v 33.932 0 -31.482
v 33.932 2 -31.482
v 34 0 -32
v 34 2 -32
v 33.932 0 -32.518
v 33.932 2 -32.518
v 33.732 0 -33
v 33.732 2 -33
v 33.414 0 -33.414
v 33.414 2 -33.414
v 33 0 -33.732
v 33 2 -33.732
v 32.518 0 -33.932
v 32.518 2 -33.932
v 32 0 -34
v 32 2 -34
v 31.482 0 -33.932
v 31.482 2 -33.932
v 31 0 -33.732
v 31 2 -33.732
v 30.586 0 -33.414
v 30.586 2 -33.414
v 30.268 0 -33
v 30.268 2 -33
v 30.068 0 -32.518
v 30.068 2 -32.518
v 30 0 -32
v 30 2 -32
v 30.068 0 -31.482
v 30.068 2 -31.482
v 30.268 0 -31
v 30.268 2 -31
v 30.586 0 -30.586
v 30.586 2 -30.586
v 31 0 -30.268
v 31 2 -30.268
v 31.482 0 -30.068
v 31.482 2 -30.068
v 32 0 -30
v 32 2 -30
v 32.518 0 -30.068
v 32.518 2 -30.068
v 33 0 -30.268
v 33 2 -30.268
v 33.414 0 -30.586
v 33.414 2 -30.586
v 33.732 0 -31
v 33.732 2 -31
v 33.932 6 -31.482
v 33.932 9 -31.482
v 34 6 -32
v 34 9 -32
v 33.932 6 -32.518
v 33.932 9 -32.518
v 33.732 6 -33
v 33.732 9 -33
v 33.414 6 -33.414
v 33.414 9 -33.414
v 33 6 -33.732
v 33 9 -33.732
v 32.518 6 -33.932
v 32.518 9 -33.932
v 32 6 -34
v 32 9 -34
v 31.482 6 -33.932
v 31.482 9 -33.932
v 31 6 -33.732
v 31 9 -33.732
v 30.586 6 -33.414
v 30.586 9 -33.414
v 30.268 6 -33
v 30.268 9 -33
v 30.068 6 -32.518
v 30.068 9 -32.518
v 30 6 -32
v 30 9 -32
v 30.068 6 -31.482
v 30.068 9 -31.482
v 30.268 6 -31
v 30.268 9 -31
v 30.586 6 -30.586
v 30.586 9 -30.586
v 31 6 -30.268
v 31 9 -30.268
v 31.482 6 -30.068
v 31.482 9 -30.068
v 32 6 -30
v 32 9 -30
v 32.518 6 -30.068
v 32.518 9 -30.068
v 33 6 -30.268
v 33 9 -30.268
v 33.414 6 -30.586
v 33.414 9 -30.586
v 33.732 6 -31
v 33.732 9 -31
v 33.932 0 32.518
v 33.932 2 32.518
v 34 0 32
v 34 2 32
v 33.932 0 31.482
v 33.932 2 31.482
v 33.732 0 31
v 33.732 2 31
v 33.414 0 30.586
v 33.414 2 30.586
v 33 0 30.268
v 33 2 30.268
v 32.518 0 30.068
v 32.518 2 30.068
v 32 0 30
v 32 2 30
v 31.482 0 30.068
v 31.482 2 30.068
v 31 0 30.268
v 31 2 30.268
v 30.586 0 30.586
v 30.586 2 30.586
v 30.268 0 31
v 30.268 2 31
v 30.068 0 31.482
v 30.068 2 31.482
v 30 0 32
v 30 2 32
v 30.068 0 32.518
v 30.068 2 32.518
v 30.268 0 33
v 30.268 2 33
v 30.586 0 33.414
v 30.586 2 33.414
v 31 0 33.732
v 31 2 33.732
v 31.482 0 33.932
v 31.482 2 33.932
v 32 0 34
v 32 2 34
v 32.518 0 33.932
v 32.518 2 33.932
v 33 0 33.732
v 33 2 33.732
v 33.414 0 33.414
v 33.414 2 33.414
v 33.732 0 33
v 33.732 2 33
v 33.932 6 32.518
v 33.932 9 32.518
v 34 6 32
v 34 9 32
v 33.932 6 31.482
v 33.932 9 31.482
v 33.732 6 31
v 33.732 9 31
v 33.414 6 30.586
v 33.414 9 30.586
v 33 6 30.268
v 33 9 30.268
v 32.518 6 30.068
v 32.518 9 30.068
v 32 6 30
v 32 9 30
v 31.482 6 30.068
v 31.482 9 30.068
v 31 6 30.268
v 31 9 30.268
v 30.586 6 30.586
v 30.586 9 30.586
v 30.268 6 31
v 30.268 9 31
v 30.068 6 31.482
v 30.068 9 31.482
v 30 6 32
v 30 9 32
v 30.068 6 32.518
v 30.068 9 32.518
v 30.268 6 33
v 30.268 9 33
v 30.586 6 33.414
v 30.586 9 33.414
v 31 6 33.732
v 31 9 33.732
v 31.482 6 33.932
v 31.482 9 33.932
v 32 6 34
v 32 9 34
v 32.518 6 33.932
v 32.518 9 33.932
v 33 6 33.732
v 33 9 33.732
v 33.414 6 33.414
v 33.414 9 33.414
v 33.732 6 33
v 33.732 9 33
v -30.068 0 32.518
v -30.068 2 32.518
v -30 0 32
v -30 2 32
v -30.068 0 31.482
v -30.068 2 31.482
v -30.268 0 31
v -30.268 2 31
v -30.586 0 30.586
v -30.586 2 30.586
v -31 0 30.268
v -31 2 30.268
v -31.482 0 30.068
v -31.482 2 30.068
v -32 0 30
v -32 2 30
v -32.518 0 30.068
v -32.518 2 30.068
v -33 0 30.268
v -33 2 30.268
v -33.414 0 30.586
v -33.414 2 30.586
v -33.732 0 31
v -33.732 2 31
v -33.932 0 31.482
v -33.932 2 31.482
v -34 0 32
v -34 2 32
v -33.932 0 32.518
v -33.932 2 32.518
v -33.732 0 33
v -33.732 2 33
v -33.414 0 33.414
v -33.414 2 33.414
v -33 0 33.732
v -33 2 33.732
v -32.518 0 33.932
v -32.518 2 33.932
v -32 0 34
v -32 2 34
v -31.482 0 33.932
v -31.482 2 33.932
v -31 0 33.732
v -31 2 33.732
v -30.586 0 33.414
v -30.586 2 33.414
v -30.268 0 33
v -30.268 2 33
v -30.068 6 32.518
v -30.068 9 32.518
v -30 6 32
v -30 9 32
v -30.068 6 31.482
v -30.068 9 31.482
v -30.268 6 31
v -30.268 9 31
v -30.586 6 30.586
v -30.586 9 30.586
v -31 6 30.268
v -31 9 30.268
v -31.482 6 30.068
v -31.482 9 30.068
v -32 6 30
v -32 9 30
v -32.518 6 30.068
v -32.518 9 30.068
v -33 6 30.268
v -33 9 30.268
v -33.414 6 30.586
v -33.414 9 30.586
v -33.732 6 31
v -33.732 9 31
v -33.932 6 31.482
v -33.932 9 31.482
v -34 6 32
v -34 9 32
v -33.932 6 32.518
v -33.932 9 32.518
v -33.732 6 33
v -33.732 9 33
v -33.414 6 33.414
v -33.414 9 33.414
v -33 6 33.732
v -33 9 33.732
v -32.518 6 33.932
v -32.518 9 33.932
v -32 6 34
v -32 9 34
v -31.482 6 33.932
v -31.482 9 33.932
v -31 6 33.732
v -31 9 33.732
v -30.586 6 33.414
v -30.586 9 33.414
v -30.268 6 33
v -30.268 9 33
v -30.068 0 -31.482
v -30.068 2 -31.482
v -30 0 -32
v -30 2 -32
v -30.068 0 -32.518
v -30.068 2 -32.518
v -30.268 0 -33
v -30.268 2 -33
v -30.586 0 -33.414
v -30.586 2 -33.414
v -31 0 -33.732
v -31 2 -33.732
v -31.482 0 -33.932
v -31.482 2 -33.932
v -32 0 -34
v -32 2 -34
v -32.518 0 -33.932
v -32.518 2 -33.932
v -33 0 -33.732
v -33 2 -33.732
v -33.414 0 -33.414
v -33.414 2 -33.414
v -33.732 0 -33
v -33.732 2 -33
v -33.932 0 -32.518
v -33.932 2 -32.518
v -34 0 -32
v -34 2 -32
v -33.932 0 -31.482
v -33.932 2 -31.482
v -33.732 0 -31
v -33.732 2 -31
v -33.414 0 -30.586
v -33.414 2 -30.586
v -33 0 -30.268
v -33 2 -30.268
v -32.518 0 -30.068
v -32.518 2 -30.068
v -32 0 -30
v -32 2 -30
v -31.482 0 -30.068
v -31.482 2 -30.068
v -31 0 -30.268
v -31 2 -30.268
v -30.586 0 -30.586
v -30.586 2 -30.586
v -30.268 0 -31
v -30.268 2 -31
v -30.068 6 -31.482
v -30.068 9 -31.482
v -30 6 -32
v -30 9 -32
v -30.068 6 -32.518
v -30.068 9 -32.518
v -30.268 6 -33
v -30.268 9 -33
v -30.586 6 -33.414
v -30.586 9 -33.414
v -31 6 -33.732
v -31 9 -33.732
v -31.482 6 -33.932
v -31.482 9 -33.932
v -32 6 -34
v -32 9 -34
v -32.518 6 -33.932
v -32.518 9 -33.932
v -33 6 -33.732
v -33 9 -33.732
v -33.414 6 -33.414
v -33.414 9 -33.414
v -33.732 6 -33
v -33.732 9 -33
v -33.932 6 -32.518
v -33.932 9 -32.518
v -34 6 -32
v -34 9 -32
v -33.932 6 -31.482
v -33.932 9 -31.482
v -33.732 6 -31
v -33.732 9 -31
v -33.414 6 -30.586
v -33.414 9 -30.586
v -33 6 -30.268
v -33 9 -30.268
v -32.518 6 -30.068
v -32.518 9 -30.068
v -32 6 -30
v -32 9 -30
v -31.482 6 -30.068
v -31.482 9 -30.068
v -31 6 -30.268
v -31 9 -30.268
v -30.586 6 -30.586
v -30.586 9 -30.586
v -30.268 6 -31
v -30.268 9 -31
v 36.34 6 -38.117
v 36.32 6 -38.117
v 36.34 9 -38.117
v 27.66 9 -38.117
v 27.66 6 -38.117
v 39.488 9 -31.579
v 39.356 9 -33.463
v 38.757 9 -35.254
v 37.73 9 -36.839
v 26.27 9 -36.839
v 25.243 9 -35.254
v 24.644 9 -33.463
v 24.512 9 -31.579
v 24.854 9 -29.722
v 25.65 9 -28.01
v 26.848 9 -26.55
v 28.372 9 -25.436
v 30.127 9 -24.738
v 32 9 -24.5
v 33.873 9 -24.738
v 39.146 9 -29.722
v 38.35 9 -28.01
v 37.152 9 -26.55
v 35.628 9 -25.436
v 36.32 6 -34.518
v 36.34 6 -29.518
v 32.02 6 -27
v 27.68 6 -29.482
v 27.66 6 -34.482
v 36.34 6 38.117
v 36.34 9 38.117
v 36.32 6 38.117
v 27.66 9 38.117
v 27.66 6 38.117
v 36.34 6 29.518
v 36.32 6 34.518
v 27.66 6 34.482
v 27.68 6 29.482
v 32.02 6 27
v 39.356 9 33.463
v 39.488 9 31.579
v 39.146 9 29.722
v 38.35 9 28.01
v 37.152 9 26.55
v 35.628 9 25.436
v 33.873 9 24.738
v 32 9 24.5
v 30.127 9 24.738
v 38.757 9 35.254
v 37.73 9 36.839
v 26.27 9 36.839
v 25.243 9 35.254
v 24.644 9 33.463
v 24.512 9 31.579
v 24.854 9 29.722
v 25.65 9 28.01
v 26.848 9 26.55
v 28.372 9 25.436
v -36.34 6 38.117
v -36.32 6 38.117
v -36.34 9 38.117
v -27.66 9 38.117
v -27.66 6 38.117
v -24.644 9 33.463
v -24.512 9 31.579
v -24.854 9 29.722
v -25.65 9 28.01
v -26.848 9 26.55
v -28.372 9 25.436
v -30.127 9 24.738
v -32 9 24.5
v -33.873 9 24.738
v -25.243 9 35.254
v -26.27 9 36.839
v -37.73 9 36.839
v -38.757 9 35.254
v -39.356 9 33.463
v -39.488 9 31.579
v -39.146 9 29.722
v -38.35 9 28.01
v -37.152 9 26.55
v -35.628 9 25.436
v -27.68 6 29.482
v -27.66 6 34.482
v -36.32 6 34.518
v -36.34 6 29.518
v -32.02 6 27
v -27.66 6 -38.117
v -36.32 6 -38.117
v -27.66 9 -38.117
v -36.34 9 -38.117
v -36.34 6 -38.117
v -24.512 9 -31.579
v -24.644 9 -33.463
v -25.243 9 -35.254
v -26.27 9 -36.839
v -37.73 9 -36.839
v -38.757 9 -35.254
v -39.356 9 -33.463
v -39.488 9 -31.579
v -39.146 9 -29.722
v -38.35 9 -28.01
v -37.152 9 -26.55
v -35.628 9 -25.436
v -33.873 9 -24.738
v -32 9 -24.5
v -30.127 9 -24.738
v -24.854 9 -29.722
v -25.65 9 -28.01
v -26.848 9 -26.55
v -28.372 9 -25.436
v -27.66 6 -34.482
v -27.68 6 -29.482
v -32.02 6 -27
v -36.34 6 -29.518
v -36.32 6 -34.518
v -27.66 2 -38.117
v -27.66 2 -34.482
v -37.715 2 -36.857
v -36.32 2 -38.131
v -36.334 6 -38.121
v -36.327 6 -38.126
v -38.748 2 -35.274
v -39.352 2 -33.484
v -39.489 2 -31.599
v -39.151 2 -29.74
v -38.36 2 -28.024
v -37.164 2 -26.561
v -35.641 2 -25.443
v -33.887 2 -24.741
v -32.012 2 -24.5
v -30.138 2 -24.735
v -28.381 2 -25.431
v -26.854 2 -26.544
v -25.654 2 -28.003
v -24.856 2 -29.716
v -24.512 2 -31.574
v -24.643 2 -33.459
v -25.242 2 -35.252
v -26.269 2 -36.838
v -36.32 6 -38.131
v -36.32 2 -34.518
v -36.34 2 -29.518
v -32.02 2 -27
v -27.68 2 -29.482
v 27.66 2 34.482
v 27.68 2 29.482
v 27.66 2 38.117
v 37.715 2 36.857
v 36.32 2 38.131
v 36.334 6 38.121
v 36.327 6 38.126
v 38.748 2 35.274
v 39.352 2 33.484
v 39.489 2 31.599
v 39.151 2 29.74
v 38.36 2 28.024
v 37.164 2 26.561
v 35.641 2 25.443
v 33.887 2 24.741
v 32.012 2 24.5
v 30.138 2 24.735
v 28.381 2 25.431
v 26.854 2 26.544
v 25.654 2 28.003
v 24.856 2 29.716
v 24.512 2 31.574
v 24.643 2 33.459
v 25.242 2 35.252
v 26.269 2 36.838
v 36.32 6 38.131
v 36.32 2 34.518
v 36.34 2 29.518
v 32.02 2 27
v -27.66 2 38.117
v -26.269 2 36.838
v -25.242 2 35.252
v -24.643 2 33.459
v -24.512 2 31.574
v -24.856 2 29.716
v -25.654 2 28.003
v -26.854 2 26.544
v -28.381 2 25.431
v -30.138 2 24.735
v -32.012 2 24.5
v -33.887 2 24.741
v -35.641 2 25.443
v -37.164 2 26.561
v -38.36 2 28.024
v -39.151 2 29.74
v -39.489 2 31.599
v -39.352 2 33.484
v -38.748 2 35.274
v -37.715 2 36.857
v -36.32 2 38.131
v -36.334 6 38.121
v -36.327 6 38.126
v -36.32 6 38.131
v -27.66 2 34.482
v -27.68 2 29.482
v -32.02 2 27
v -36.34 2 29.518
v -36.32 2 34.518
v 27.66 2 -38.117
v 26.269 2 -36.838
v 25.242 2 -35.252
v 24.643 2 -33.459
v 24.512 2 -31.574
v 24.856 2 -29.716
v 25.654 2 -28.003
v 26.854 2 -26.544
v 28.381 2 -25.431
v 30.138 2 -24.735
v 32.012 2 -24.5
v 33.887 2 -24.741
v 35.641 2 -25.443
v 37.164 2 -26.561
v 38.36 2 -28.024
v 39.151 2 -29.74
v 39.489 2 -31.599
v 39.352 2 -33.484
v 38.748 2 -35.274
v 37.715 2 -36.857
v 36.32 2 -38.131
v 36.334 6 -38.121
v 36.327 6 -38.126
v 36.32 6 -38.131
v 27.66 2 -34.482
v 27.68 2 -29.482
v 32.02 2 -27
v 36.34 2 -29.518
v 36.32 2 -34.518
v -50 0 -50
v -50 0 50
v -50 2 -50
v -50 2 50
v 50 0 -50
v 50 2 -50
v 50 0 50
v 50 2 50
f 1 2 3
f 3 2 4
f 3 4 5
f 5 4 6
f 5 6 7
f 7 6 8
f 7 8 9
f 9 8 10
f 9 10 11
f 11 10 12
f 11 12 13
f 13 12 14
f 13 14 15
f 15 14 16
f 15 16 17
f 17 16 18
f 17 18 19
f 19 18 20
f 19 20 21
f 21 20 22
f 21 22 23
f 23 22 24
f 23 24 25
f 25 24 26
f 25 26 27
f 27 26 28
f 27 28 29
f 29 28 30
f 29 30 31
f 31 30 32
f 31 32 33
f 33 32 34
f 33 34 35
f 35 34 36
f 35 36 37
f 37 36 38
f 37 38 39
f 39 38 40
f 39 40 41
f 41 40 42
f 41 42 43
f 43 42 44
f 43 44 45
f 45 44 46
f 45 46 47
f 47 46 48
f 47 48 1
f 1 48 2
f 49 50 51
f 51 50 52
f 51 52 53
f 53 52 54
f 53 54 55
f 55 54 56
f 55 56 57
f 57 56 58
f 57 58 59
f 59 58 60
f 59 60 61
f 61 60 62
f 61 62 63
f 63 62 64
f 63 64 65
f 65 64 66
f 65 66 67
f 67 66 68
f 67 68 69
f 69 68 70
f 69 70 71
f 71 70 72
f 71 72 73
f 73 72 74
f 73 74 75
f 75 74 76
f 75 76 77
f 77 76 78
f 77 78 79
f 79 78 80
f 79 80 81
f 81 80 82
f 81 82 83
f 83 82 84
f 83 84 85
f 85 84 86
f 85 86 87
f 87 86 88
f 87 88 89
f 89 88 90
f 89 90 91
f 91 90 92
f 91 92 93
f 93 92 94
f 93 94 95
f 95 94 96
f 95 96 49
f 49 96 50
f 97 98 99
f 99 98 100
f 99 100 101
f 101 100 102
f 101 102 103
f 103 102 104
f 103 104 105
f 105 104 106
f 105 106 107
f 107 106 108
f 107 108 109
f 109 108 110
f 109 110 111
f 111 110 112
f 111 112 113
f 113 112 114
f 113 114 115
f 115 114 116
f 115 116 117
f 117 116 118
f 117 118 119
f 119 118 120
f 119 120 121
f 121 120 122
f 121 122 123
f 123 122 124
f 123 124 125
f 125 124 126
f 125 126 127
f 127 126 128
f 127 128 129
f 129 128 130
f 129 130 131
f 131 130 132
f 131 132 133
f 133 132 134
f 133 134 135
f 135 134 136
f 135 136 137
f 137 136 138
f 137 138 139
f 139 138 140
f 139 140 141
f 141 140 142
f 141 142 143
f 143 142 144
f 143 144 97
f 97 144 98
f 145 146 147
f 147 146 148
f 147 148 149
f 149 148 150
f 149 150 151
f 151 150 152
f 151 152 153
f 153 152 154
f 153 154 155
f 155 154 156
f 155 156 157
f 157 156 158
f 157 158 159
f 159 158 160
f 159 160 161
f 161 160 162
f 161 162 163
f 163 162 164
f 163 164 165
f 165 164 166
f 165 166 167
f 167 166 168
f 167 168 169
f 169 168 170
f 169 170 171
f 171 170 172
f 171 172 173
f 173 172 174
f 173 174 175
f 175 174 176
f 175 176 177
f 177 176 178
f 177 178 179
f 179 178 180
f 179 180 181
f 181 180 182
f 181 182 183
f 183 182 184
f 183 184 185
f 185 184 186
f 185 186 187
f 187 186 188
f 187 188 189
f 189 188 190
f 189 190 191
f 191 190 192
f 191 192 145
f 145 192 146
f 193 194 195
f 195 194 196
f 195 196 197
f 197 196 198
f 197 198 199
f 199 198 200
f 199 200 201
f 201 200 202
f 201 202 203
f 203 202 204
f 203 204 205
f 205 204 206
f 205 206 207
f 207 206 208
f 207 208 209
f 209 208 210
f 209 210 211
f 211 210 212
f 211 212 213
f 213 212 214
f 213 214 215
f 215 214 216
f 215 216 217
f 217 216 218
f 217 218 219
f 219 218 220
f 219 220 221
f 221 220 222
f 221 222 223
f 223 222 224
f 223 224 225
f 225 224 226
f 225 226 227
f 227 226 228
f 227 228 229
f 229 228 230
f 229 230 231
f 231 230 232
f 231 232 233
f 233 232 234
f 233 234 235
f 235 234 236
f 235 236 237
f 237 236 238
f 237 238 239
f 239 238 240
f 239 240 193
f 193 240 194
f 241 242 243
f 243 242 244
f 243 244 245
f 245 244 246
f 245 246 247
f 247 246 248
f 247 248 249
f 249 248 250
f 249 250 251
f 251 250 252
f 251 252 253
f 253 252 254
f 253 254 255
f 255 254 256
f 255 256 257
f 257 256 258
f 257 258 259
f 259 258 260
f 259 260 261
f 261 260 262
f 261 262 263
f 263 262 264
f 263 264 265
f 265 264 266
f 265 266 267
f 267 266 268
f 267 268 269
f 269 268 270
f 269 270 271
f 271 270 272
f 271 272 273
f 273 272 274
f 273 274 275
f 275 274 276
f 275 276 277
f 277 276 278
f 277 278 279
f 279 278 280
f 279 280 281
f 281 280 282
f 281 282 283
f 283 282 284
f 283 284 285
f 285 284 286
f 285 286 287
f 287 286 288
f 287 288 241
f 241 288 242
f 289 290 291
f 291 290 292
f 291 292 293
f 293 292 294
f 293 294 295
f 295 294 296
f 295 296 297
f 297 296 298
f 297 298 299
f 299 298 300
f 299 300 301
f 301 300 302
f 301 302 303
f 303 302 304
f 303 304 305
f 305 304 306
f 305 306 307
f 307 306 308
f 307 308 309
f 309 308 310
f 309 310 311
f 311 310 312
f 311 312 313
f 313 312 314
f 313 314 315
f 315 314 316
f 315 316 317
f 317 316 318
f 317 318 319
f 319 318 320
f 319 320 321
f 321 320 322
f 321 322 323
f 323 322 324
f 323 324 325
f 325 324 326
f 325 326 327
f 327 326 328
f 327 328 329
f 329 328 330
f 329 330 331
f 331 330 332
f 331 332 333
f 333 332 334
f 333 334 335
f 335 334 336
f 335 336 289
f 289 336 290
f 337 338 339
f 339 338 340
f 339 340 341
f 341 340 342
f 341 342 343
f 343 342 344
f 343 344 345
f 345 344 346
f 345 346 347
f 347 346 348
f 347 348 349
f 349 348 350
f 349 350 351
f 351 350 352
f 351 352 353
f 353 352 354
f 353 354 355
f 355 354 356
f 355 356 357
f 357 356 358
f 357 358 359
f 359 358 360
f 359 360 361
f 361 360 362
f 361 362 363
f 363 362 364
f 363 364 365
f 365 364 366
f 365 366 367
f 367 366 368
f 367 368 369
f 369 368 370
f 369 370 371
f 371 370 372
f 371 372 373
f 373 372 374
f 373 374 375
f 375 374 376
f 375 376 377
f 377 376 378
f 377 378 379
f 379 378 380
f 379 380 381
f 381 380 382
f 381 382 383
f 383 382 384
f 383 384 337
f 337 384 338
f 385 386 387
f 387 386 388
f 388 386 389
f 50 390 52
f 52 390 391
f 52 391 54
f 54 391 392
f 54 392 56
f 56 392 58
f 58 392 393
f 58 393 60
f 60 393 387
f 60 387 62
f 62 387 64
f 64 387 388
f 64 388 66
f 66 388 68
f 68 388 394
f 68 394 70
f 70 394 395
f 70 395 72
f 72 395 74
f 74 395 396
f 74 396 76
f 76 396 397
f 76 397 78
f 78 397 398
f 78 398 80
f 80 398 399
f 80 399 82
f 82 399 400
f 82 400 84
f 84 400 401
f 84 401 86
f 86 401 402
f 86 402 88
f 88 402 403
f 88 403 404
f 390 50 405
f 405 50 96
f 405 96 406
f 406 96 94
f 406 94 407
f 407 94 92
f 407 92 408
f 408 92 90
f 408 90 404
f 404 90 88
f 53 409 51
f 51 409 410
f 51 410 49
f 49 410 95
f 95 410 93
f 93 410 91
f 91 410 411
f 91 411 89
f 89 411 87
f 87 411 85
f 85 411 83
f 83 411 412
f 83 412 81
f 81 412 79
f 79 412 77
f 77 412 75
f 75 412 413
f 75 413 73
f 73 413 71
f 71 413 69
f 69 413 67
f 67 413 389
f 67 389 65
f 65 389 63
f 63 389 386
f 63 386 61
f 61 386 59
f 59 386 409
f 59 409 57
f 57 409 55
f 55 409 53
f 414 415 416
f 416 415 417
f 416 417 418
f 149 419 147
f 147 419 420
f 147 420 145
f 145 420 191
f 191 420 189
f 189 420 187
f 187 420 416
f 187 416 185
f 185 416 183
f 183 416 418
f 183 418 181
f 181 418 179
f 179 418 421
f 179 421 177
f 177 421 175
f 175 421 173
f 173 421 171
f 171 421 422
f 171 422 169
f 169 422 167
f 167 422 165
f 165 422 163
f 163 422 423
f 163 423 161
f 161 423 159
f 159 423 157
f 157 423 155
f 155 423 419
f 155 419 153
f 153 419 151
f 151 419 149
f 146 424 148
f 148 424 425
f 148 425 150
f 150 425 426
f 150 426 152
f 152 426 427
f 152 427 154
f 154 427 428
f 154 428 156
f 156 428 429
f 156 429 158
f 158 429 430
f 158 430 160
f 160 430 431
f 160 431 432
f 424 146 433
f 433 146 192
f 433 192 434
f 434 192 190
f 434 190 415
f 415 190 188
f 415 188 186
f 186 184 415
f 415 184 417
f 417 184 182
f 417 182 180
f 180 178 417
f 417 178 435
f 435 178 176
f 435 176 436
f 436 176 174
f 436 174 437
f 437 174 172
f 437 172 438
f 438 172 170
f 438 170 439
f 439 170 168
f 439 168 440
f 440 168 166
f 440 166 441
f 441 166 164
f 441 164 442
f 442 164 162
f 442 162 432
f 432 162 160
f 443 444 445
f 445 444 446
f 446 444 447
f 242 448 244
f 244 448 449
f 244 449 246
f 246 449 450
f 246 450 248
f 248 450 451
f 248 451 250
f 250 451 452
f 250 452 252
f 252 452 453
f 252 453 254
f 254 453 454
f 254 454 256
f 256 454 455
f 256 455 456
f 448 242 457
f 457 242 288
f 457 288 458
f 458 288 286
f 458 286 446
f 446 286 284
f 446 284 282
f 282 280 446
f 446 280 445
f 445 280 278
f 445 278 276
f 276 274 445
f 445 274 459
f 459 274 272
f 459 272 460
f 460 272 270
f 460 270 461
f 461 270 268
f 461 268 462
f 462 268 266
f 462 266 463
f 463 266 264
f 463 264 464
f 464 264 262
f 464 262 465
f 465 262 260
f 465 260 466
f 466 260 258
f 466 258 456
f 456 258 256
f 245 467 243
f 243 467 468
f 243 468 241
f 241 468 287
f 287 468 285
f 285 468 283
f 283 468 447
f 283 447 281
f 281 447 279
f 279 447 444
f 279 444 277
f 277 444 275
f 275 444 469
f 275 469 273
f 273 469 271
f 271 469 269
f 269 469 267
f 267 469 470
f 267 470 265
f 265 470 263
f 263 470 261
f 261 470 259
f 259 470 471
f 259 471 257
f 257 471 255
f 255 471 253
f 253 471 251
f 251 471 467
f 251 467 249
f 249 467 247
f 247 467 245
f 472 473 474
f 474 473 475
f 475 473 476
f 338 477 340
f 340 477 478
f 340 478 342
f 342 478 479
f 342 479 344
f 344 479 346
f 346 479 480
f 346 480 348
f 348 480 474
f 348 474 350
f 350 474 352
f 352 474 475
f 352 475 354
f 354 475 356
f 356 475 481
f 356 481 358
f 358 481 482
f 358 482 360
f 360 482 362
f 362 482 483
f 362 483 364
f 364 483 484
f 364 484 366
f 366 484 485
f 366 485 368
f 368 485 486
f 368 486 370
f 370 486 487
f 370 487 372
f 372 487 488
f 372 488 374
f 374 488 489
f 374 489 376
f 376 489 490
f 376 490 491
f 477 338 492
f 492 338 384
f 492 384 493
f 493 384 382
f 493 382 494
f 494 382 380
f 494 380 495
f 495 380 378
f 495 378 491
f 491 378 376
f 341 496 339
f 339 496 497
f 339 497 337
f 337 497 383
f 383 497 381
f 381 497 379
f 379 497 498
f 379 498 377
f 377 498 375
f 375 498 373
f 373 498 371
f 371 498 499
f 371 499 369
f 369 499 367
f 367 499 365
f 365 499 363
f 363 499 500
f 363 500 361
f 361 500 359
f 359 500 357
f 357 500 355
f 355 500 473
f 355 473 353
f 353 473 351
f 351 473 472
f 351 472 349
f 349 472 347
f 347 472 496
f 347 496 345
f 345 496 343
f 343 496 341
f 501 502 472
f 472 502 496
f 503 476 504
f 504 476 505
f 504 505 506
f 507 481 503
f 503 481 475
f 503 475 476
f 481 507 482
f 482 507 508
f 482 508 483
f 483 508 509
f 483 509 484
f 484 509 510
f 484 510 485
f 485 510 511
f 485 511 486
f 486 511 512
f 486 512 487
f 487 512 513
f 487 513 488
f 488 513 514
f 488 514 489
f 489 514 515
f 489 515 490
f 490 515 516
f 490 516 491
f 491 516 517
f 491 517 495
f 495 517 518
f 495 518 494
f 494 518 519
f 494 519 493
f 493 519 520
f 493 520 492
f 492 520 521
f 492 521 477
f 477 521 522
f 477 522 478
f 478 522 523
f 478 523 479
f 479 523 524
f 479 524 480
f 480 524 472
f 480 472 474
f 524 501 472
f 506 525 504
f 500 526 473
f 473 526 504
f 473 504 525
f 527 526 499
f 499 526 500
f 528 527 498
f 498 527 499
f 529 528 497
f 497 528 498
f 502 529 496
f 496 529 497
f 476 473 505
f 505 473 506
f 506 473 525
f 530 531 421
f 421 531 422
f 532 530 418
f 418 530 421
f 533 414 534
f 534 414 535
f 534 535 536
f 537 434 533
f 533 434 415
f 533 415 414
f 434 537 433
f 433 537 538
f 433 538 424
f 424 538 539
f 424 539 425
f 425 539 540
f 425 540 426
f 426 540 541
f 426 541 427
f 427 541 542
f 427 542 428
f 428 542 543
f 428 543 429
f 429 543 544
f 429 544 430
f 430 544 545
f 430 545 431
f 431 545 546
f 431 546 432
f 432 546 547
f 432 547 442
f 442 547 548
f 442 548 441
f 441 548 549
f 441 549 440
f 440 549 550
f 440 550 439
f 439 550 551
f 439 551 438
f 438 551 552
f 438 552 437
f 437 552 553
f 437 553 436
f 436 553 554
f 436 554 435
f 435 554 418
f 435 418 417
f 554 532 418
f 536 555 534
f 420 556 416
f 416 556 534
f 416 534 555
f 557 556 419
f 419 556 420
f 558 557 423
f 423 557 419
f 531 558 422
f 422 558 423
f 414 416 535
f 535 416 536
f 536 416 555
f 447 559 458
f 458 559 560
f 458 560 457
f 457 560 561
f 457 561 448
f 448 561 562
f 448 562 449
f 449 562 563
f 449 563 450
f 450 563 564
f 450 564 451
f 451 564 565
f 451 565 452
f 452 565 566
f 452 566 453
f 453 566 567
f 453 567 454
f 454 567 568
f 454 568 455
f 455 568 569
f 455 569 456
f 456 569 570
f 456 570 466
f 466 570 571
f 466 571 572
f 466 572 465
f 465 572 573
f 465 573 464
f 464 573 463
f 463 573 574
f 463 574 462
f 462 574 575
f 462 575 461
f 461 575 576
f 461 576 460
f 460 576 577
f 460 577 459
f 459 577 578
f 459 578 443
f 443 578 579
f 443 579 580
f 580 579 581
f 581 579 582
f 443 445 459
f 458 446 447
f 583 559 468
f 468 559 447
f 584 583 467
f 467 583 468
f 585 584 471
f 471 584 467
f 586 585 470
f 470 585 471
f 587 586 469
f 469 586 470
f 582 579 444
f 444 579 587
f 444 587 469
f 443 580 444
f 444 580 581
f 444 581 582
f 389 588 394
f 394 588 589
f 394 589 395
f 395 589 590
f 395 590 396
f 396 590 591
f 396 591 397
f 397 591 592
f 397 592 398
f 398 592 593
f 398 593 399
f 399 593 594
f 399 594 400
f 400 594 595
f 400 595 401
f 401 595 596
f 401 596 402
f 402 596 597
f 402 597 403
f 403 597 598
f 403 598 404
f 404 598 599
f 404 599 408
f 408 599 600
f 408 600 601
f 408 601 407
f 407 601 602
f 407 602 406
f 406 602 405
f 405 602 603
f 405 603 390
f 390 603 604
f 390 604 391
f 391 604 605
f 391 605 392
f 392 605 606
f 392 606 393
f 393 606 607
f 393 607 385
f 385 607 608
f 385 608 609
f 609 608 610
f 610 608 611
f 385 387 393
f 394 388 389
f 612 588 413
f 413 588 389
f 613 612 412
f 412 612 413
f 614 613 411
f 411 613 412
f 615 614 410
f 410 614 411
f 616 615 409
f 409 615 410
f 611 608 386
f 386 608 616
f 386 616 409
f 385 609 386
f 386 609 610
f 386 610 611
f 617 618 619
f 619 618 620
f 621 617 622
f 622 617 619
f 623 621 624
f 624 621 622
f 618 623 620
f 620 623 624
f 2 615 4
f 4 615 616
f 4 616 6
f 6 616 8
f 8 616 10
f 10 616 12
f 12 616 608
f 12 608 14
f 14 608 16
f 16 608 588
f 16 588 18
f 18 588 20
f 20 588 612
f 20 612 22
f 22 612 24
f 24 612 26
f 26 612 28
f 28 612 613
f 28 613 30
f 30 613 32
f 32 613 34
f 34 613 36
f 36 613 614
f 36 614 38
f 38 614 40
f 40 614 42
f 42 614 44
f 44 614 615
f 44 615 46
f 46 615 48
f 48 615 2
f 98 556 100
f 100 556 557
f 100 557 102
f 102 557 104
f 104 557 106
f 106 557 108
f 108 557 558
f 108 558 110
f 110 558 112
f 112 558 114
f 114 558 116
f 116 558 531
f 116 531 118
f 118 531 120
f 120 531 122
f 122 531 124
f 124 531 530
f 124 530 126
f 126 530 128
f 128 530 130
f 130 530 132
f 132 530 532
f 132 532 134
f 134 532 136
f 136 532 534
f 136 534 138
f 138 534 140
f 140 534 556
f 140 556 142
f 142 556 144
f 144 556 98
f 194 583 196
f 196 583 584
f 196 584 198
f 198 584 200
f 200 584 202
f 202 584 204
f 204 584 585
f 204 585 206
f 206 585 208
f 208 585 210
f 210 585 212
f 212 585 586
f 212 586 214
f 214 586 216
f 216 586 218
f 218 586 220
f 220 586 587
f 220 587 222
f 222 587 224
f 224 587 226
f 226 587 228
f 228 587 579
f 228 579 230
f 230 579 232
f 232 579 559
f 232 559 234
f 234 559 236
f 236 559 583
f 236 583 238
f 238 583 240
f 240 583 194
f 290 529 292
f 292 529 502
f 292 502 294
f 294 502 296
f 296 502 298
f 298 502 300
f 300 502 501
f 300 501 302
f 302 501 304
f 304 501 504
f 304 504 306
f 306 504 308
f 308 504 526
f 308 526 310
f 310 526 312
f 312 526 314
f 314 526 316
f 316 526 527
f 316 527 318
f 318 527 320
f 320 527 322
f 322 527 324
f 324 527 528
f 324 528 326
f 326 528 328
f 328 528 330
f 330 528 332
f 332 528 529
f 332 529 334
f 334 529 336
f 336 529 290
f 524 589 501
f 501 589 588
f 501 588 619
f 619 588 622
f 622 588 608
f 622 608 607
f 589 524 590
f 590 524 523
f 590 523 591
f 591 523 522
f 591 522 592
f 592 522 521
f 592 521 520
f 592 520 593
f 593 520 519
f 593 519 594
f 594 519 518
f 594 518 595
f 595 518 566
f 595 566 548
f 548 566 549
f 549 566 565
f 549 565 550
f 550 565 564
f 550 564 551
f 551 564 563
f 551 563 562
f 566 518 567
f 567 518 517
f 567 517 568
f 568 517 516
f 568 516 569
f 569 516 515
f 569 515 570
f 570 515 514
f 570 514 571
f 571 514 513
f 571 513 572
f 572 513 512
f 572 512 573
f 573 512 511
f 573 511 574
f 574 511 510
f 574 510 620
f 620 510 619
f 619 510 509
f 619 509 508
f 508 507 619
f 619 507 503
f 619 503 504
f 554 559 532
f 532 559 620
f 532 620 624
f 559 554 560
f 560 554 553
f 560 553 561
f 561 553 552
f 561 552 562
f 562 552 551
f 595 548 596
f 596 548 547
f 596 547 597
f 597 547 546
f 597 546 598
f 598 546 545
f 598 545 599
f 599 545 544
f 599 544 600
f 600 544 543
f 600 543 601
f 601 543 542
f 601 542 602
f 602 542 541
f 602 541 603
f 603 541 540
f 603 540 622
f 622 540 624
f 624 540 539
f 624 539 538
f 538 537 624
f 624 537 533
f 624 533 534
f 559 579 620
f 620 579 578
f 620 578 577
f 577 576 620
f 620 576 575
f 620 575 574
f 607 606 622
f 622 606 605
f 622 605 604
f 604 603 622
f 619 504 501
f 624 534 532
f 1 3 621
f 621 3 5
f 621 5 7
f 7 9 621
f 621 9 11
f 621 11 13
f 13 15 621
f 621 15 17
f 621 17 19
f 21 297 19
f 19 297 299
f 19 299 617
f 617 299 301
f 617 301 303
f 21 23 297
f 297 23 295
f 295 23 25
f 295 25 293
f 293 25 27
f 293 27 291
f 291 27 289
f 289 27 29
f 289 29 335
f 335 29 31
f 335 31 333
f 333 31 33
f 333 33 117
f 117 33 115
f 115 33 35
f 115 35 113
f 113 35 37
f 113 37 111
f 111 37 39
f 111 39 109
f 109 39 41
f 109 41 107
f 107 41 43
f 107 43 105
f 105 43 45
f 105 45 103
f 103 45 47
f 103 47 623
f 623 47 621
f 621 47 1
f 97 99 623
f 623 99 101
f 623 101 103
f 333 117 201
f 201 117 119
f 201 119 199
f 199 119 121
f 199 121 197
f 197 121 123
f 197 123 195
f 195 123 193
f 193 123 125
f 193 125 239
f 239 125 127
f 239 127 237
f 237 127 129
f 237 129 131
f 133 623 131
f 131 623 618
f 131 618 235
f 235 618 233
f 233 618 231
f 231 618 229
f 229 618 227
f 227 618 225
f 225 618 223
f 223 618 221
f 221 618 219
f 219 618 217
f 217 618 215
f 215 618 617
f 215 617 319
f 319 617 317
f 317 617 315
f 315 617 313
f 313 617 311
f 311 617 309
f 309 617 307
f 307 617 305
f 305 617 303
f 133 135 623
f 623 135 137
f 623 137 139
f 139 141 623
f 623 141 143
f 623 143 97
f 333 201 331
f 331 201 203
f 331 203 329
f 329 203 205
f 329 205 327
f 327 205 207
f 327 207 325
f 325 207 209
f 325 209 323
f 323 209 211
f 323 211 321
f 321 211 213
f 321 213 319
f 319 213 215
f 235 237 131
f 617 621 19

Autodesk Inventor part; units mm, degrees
ref_plane "YZ Plane" through (0, 0, 0) normal (1, 0, 0) x (0, 1, 0)
ref_plane "XZ Plane" through (0, 0, 0) normal (0, 1, 0) x (-1, 0, 0)
ref_plane "XY Plane" through (0, 0, 0) normal (0, 0, 1) x (1, 0, 0)
sketch "Esquisse1" plane through (0, 0, 0) normal (0, 1, 0) x (-1, 0, 0)
  line L0 (50, 50) -> (-50, 50)
  line L1 (-50, 50) -> (-50, -50)
  line L2 (-50, -50) -> (50, -50)
  line L3 (50, -50) -> (50, 50)
  point P0 (0, 0)
  dimension "d0" = 100
  dimension "d1" = 100
  dimension "d17" = 50
  dimension "d18" = 50
extrude "Extrusion1" add sketch "Esquisse1" along normal blind 2
sketch "Esquisse2" plane through (0, 2, 0) normal (0, 1, 0) x (1, 0, 0)
  line L0 (50, -50) -> (50, 50) projected
  line L1 (-50, -50) -> (50, -50) projected
  arc A0 (36.32, -38.1309) -> (27.6597, -38.1165) centre (32, -32) ccw
  line L2 (27.68, -29.4825) -> (32.0203, -27)
  line L3 (32.0203, -27) -> (36.3403, -29.5175)
  line L4 (36.3403, -29.5175) -> (36.32, -34.5175)
  line L5 (27.6597, -34.4825) -> (27.68, -29.4825)
  line L6 (27.6597, -34.4825) -> (27.6597, -38.1165)
  line L7 (36.32, -34.5175) -> (36.32, -38.1309)
  line L8 (53.6963, 0) -> (-74.6388, 0)
  line L9 (0, -61.7794) -> (0, 59.6738)
  arc A1 (-27.6597, -38.1165) -> (-36.32, -38.1309) centre (-32, -32) ccw
  line L10 (-27.68, -29.4825) -> (-32.0203, -27)
  line L11 (-32.0203, -27) -> (-36.3403, -29.5175)
  line L12 (-36.3403, -29.5175) -> (-36.32, -34.5175)
  line L13 (-27.6597, -34.4825) -> (-27.68, -29.4825)
  line L14 (-27.6597, -34.4825) -> (-27.6597, -38.1165)
  line L15 (-36.32, -34.5175) -> (-36.32, -38.1309)
  arc A2 (27.6597, 38.1165) -> (36.32, 38.1309) centre (32, 32) ccw
  line L16 (27.68, 29.4825) -> (32.0203, 27)
  line L17 (32.0203, 27) -> (36.3403, 29.5175)
  line L18 (36.3403, 29.5175) -> (36.32, 34.5175)
  line L19 (27.6597, 34.4825) -> (27.68, 29.4825)
  line L20 (27.6597, 34.4825) -> (27.6597, 38.1165)
  line L21 (36.32, 34.5175) -> (36.32, 38.1309)
  arc A3 (-36.32, 38.1309) -> (-27.6597, 38.1165) centre (-32, 32) ccw
  line L22 (-27.68, 29.4825) -> (-32.0203, 27)
  line L23 (-32.0203, 27) -> (-36.3403, 29.5175)
  line L24 (-36.3403, 29.5175) -> (-36.32, 34.5175)
  line L25 (-27.6597, 34.4825) -> (-27.68, 29.4825)
  line L26 (-27.6597, 34.4825) -> (-27.6597, 38.1165)
  line L27 (-36.32, 34.5175) -> (-36.32, 38.1309)
  point P0 (0, 0)
  dimension "d6" = 18
  dimension "d7" = 18
  dimension "d8" = 15
  dimension "d9" = 5
extrude "Extrusion2" add sketch "Esquisse2" along normal blind 4 contours L7 L4 L3 L2 L5 L6 A0 | L14 L13 L10 L11 L12 L15 A1 | L20 L19 L16 L17 L18 L21 A2 | L27 L24 L23 L22 L25 L26 A3
sketch "Esquisse4" plane through (0, 6, 0) normal (0, 1, 0) x (1, 0, 0)
  arc A0 (36.32, -38.1309) -> (27.6597, -38.1165) centre (32, -32) ccw projected
  line L0 (27.6597, -38.1165) -> (36.3403, -38.1165)
  line L1 (53.7761, 0) -> (-84.9694, 0)
  line L2 (0, -51.9111) -> (0, 71.3221)
  arc A1 (-27.6597, -38.1165) -> (-36.32, -38.1309) centre (-32, -32) ccw
  line L3 (-27.6597, -38.1165) -> (-36.3403, -38.1165)
  arc A2 (27.6597, 38.1165) -> (36.32, 38.1309) centre (32, 32) ccw
  line L4 (27.6597, 38.1165) -> (36.3403, 38.1165)
  arc A3 (-36.32, 38.1309) -> (-27.6597, 38.1165) centre (-32, 32) ccw
  line L5 (-27.6597, 38.1165) -> (-36.3403, 38.1165)
  point P0 (0, 0)
extrude "Extrusion3" add sketch "Esquisse4" along normal blind 3
sketch "Esquisse5" plane through (0, 9, 0) normal (0, 1, 0) x (1, 0, 0)
  circle A0 centre (32, -32) radius 2
  arc A1 (36.3403, -38.1165) -> (27.6597, -38.1165) centre (32, -32) ccw projected
  line L0 (0, -51.4977) -> (0, 66.0278)
  line L1 (54.9768, 0) -> (-89.9714, 0)
  circle A2 centre (-32, -32) radius 2
  arc A3 (-27.6597, -38.1165) -> (-36.3403, -38.1165) centre (-32, -32) ccw
  circle A4 centre (32, 32) radius 2
  arc A5 (27.6597, 38.1165) -> (36.3403, 38.1165) centre (32, 32) ccw
  circle A6 centre (-32, 32) radius 2
  arc A7 (-36.3403, 38.1165) -> (-27.6597, 38.1165) centre (-32, 32) ccw
  point P0 (0, 0)
  dimension "d14" = 4
extrude "Extrusion4" cut sketch "Esquisse5" against normal through all
properties part number "support-balise"
